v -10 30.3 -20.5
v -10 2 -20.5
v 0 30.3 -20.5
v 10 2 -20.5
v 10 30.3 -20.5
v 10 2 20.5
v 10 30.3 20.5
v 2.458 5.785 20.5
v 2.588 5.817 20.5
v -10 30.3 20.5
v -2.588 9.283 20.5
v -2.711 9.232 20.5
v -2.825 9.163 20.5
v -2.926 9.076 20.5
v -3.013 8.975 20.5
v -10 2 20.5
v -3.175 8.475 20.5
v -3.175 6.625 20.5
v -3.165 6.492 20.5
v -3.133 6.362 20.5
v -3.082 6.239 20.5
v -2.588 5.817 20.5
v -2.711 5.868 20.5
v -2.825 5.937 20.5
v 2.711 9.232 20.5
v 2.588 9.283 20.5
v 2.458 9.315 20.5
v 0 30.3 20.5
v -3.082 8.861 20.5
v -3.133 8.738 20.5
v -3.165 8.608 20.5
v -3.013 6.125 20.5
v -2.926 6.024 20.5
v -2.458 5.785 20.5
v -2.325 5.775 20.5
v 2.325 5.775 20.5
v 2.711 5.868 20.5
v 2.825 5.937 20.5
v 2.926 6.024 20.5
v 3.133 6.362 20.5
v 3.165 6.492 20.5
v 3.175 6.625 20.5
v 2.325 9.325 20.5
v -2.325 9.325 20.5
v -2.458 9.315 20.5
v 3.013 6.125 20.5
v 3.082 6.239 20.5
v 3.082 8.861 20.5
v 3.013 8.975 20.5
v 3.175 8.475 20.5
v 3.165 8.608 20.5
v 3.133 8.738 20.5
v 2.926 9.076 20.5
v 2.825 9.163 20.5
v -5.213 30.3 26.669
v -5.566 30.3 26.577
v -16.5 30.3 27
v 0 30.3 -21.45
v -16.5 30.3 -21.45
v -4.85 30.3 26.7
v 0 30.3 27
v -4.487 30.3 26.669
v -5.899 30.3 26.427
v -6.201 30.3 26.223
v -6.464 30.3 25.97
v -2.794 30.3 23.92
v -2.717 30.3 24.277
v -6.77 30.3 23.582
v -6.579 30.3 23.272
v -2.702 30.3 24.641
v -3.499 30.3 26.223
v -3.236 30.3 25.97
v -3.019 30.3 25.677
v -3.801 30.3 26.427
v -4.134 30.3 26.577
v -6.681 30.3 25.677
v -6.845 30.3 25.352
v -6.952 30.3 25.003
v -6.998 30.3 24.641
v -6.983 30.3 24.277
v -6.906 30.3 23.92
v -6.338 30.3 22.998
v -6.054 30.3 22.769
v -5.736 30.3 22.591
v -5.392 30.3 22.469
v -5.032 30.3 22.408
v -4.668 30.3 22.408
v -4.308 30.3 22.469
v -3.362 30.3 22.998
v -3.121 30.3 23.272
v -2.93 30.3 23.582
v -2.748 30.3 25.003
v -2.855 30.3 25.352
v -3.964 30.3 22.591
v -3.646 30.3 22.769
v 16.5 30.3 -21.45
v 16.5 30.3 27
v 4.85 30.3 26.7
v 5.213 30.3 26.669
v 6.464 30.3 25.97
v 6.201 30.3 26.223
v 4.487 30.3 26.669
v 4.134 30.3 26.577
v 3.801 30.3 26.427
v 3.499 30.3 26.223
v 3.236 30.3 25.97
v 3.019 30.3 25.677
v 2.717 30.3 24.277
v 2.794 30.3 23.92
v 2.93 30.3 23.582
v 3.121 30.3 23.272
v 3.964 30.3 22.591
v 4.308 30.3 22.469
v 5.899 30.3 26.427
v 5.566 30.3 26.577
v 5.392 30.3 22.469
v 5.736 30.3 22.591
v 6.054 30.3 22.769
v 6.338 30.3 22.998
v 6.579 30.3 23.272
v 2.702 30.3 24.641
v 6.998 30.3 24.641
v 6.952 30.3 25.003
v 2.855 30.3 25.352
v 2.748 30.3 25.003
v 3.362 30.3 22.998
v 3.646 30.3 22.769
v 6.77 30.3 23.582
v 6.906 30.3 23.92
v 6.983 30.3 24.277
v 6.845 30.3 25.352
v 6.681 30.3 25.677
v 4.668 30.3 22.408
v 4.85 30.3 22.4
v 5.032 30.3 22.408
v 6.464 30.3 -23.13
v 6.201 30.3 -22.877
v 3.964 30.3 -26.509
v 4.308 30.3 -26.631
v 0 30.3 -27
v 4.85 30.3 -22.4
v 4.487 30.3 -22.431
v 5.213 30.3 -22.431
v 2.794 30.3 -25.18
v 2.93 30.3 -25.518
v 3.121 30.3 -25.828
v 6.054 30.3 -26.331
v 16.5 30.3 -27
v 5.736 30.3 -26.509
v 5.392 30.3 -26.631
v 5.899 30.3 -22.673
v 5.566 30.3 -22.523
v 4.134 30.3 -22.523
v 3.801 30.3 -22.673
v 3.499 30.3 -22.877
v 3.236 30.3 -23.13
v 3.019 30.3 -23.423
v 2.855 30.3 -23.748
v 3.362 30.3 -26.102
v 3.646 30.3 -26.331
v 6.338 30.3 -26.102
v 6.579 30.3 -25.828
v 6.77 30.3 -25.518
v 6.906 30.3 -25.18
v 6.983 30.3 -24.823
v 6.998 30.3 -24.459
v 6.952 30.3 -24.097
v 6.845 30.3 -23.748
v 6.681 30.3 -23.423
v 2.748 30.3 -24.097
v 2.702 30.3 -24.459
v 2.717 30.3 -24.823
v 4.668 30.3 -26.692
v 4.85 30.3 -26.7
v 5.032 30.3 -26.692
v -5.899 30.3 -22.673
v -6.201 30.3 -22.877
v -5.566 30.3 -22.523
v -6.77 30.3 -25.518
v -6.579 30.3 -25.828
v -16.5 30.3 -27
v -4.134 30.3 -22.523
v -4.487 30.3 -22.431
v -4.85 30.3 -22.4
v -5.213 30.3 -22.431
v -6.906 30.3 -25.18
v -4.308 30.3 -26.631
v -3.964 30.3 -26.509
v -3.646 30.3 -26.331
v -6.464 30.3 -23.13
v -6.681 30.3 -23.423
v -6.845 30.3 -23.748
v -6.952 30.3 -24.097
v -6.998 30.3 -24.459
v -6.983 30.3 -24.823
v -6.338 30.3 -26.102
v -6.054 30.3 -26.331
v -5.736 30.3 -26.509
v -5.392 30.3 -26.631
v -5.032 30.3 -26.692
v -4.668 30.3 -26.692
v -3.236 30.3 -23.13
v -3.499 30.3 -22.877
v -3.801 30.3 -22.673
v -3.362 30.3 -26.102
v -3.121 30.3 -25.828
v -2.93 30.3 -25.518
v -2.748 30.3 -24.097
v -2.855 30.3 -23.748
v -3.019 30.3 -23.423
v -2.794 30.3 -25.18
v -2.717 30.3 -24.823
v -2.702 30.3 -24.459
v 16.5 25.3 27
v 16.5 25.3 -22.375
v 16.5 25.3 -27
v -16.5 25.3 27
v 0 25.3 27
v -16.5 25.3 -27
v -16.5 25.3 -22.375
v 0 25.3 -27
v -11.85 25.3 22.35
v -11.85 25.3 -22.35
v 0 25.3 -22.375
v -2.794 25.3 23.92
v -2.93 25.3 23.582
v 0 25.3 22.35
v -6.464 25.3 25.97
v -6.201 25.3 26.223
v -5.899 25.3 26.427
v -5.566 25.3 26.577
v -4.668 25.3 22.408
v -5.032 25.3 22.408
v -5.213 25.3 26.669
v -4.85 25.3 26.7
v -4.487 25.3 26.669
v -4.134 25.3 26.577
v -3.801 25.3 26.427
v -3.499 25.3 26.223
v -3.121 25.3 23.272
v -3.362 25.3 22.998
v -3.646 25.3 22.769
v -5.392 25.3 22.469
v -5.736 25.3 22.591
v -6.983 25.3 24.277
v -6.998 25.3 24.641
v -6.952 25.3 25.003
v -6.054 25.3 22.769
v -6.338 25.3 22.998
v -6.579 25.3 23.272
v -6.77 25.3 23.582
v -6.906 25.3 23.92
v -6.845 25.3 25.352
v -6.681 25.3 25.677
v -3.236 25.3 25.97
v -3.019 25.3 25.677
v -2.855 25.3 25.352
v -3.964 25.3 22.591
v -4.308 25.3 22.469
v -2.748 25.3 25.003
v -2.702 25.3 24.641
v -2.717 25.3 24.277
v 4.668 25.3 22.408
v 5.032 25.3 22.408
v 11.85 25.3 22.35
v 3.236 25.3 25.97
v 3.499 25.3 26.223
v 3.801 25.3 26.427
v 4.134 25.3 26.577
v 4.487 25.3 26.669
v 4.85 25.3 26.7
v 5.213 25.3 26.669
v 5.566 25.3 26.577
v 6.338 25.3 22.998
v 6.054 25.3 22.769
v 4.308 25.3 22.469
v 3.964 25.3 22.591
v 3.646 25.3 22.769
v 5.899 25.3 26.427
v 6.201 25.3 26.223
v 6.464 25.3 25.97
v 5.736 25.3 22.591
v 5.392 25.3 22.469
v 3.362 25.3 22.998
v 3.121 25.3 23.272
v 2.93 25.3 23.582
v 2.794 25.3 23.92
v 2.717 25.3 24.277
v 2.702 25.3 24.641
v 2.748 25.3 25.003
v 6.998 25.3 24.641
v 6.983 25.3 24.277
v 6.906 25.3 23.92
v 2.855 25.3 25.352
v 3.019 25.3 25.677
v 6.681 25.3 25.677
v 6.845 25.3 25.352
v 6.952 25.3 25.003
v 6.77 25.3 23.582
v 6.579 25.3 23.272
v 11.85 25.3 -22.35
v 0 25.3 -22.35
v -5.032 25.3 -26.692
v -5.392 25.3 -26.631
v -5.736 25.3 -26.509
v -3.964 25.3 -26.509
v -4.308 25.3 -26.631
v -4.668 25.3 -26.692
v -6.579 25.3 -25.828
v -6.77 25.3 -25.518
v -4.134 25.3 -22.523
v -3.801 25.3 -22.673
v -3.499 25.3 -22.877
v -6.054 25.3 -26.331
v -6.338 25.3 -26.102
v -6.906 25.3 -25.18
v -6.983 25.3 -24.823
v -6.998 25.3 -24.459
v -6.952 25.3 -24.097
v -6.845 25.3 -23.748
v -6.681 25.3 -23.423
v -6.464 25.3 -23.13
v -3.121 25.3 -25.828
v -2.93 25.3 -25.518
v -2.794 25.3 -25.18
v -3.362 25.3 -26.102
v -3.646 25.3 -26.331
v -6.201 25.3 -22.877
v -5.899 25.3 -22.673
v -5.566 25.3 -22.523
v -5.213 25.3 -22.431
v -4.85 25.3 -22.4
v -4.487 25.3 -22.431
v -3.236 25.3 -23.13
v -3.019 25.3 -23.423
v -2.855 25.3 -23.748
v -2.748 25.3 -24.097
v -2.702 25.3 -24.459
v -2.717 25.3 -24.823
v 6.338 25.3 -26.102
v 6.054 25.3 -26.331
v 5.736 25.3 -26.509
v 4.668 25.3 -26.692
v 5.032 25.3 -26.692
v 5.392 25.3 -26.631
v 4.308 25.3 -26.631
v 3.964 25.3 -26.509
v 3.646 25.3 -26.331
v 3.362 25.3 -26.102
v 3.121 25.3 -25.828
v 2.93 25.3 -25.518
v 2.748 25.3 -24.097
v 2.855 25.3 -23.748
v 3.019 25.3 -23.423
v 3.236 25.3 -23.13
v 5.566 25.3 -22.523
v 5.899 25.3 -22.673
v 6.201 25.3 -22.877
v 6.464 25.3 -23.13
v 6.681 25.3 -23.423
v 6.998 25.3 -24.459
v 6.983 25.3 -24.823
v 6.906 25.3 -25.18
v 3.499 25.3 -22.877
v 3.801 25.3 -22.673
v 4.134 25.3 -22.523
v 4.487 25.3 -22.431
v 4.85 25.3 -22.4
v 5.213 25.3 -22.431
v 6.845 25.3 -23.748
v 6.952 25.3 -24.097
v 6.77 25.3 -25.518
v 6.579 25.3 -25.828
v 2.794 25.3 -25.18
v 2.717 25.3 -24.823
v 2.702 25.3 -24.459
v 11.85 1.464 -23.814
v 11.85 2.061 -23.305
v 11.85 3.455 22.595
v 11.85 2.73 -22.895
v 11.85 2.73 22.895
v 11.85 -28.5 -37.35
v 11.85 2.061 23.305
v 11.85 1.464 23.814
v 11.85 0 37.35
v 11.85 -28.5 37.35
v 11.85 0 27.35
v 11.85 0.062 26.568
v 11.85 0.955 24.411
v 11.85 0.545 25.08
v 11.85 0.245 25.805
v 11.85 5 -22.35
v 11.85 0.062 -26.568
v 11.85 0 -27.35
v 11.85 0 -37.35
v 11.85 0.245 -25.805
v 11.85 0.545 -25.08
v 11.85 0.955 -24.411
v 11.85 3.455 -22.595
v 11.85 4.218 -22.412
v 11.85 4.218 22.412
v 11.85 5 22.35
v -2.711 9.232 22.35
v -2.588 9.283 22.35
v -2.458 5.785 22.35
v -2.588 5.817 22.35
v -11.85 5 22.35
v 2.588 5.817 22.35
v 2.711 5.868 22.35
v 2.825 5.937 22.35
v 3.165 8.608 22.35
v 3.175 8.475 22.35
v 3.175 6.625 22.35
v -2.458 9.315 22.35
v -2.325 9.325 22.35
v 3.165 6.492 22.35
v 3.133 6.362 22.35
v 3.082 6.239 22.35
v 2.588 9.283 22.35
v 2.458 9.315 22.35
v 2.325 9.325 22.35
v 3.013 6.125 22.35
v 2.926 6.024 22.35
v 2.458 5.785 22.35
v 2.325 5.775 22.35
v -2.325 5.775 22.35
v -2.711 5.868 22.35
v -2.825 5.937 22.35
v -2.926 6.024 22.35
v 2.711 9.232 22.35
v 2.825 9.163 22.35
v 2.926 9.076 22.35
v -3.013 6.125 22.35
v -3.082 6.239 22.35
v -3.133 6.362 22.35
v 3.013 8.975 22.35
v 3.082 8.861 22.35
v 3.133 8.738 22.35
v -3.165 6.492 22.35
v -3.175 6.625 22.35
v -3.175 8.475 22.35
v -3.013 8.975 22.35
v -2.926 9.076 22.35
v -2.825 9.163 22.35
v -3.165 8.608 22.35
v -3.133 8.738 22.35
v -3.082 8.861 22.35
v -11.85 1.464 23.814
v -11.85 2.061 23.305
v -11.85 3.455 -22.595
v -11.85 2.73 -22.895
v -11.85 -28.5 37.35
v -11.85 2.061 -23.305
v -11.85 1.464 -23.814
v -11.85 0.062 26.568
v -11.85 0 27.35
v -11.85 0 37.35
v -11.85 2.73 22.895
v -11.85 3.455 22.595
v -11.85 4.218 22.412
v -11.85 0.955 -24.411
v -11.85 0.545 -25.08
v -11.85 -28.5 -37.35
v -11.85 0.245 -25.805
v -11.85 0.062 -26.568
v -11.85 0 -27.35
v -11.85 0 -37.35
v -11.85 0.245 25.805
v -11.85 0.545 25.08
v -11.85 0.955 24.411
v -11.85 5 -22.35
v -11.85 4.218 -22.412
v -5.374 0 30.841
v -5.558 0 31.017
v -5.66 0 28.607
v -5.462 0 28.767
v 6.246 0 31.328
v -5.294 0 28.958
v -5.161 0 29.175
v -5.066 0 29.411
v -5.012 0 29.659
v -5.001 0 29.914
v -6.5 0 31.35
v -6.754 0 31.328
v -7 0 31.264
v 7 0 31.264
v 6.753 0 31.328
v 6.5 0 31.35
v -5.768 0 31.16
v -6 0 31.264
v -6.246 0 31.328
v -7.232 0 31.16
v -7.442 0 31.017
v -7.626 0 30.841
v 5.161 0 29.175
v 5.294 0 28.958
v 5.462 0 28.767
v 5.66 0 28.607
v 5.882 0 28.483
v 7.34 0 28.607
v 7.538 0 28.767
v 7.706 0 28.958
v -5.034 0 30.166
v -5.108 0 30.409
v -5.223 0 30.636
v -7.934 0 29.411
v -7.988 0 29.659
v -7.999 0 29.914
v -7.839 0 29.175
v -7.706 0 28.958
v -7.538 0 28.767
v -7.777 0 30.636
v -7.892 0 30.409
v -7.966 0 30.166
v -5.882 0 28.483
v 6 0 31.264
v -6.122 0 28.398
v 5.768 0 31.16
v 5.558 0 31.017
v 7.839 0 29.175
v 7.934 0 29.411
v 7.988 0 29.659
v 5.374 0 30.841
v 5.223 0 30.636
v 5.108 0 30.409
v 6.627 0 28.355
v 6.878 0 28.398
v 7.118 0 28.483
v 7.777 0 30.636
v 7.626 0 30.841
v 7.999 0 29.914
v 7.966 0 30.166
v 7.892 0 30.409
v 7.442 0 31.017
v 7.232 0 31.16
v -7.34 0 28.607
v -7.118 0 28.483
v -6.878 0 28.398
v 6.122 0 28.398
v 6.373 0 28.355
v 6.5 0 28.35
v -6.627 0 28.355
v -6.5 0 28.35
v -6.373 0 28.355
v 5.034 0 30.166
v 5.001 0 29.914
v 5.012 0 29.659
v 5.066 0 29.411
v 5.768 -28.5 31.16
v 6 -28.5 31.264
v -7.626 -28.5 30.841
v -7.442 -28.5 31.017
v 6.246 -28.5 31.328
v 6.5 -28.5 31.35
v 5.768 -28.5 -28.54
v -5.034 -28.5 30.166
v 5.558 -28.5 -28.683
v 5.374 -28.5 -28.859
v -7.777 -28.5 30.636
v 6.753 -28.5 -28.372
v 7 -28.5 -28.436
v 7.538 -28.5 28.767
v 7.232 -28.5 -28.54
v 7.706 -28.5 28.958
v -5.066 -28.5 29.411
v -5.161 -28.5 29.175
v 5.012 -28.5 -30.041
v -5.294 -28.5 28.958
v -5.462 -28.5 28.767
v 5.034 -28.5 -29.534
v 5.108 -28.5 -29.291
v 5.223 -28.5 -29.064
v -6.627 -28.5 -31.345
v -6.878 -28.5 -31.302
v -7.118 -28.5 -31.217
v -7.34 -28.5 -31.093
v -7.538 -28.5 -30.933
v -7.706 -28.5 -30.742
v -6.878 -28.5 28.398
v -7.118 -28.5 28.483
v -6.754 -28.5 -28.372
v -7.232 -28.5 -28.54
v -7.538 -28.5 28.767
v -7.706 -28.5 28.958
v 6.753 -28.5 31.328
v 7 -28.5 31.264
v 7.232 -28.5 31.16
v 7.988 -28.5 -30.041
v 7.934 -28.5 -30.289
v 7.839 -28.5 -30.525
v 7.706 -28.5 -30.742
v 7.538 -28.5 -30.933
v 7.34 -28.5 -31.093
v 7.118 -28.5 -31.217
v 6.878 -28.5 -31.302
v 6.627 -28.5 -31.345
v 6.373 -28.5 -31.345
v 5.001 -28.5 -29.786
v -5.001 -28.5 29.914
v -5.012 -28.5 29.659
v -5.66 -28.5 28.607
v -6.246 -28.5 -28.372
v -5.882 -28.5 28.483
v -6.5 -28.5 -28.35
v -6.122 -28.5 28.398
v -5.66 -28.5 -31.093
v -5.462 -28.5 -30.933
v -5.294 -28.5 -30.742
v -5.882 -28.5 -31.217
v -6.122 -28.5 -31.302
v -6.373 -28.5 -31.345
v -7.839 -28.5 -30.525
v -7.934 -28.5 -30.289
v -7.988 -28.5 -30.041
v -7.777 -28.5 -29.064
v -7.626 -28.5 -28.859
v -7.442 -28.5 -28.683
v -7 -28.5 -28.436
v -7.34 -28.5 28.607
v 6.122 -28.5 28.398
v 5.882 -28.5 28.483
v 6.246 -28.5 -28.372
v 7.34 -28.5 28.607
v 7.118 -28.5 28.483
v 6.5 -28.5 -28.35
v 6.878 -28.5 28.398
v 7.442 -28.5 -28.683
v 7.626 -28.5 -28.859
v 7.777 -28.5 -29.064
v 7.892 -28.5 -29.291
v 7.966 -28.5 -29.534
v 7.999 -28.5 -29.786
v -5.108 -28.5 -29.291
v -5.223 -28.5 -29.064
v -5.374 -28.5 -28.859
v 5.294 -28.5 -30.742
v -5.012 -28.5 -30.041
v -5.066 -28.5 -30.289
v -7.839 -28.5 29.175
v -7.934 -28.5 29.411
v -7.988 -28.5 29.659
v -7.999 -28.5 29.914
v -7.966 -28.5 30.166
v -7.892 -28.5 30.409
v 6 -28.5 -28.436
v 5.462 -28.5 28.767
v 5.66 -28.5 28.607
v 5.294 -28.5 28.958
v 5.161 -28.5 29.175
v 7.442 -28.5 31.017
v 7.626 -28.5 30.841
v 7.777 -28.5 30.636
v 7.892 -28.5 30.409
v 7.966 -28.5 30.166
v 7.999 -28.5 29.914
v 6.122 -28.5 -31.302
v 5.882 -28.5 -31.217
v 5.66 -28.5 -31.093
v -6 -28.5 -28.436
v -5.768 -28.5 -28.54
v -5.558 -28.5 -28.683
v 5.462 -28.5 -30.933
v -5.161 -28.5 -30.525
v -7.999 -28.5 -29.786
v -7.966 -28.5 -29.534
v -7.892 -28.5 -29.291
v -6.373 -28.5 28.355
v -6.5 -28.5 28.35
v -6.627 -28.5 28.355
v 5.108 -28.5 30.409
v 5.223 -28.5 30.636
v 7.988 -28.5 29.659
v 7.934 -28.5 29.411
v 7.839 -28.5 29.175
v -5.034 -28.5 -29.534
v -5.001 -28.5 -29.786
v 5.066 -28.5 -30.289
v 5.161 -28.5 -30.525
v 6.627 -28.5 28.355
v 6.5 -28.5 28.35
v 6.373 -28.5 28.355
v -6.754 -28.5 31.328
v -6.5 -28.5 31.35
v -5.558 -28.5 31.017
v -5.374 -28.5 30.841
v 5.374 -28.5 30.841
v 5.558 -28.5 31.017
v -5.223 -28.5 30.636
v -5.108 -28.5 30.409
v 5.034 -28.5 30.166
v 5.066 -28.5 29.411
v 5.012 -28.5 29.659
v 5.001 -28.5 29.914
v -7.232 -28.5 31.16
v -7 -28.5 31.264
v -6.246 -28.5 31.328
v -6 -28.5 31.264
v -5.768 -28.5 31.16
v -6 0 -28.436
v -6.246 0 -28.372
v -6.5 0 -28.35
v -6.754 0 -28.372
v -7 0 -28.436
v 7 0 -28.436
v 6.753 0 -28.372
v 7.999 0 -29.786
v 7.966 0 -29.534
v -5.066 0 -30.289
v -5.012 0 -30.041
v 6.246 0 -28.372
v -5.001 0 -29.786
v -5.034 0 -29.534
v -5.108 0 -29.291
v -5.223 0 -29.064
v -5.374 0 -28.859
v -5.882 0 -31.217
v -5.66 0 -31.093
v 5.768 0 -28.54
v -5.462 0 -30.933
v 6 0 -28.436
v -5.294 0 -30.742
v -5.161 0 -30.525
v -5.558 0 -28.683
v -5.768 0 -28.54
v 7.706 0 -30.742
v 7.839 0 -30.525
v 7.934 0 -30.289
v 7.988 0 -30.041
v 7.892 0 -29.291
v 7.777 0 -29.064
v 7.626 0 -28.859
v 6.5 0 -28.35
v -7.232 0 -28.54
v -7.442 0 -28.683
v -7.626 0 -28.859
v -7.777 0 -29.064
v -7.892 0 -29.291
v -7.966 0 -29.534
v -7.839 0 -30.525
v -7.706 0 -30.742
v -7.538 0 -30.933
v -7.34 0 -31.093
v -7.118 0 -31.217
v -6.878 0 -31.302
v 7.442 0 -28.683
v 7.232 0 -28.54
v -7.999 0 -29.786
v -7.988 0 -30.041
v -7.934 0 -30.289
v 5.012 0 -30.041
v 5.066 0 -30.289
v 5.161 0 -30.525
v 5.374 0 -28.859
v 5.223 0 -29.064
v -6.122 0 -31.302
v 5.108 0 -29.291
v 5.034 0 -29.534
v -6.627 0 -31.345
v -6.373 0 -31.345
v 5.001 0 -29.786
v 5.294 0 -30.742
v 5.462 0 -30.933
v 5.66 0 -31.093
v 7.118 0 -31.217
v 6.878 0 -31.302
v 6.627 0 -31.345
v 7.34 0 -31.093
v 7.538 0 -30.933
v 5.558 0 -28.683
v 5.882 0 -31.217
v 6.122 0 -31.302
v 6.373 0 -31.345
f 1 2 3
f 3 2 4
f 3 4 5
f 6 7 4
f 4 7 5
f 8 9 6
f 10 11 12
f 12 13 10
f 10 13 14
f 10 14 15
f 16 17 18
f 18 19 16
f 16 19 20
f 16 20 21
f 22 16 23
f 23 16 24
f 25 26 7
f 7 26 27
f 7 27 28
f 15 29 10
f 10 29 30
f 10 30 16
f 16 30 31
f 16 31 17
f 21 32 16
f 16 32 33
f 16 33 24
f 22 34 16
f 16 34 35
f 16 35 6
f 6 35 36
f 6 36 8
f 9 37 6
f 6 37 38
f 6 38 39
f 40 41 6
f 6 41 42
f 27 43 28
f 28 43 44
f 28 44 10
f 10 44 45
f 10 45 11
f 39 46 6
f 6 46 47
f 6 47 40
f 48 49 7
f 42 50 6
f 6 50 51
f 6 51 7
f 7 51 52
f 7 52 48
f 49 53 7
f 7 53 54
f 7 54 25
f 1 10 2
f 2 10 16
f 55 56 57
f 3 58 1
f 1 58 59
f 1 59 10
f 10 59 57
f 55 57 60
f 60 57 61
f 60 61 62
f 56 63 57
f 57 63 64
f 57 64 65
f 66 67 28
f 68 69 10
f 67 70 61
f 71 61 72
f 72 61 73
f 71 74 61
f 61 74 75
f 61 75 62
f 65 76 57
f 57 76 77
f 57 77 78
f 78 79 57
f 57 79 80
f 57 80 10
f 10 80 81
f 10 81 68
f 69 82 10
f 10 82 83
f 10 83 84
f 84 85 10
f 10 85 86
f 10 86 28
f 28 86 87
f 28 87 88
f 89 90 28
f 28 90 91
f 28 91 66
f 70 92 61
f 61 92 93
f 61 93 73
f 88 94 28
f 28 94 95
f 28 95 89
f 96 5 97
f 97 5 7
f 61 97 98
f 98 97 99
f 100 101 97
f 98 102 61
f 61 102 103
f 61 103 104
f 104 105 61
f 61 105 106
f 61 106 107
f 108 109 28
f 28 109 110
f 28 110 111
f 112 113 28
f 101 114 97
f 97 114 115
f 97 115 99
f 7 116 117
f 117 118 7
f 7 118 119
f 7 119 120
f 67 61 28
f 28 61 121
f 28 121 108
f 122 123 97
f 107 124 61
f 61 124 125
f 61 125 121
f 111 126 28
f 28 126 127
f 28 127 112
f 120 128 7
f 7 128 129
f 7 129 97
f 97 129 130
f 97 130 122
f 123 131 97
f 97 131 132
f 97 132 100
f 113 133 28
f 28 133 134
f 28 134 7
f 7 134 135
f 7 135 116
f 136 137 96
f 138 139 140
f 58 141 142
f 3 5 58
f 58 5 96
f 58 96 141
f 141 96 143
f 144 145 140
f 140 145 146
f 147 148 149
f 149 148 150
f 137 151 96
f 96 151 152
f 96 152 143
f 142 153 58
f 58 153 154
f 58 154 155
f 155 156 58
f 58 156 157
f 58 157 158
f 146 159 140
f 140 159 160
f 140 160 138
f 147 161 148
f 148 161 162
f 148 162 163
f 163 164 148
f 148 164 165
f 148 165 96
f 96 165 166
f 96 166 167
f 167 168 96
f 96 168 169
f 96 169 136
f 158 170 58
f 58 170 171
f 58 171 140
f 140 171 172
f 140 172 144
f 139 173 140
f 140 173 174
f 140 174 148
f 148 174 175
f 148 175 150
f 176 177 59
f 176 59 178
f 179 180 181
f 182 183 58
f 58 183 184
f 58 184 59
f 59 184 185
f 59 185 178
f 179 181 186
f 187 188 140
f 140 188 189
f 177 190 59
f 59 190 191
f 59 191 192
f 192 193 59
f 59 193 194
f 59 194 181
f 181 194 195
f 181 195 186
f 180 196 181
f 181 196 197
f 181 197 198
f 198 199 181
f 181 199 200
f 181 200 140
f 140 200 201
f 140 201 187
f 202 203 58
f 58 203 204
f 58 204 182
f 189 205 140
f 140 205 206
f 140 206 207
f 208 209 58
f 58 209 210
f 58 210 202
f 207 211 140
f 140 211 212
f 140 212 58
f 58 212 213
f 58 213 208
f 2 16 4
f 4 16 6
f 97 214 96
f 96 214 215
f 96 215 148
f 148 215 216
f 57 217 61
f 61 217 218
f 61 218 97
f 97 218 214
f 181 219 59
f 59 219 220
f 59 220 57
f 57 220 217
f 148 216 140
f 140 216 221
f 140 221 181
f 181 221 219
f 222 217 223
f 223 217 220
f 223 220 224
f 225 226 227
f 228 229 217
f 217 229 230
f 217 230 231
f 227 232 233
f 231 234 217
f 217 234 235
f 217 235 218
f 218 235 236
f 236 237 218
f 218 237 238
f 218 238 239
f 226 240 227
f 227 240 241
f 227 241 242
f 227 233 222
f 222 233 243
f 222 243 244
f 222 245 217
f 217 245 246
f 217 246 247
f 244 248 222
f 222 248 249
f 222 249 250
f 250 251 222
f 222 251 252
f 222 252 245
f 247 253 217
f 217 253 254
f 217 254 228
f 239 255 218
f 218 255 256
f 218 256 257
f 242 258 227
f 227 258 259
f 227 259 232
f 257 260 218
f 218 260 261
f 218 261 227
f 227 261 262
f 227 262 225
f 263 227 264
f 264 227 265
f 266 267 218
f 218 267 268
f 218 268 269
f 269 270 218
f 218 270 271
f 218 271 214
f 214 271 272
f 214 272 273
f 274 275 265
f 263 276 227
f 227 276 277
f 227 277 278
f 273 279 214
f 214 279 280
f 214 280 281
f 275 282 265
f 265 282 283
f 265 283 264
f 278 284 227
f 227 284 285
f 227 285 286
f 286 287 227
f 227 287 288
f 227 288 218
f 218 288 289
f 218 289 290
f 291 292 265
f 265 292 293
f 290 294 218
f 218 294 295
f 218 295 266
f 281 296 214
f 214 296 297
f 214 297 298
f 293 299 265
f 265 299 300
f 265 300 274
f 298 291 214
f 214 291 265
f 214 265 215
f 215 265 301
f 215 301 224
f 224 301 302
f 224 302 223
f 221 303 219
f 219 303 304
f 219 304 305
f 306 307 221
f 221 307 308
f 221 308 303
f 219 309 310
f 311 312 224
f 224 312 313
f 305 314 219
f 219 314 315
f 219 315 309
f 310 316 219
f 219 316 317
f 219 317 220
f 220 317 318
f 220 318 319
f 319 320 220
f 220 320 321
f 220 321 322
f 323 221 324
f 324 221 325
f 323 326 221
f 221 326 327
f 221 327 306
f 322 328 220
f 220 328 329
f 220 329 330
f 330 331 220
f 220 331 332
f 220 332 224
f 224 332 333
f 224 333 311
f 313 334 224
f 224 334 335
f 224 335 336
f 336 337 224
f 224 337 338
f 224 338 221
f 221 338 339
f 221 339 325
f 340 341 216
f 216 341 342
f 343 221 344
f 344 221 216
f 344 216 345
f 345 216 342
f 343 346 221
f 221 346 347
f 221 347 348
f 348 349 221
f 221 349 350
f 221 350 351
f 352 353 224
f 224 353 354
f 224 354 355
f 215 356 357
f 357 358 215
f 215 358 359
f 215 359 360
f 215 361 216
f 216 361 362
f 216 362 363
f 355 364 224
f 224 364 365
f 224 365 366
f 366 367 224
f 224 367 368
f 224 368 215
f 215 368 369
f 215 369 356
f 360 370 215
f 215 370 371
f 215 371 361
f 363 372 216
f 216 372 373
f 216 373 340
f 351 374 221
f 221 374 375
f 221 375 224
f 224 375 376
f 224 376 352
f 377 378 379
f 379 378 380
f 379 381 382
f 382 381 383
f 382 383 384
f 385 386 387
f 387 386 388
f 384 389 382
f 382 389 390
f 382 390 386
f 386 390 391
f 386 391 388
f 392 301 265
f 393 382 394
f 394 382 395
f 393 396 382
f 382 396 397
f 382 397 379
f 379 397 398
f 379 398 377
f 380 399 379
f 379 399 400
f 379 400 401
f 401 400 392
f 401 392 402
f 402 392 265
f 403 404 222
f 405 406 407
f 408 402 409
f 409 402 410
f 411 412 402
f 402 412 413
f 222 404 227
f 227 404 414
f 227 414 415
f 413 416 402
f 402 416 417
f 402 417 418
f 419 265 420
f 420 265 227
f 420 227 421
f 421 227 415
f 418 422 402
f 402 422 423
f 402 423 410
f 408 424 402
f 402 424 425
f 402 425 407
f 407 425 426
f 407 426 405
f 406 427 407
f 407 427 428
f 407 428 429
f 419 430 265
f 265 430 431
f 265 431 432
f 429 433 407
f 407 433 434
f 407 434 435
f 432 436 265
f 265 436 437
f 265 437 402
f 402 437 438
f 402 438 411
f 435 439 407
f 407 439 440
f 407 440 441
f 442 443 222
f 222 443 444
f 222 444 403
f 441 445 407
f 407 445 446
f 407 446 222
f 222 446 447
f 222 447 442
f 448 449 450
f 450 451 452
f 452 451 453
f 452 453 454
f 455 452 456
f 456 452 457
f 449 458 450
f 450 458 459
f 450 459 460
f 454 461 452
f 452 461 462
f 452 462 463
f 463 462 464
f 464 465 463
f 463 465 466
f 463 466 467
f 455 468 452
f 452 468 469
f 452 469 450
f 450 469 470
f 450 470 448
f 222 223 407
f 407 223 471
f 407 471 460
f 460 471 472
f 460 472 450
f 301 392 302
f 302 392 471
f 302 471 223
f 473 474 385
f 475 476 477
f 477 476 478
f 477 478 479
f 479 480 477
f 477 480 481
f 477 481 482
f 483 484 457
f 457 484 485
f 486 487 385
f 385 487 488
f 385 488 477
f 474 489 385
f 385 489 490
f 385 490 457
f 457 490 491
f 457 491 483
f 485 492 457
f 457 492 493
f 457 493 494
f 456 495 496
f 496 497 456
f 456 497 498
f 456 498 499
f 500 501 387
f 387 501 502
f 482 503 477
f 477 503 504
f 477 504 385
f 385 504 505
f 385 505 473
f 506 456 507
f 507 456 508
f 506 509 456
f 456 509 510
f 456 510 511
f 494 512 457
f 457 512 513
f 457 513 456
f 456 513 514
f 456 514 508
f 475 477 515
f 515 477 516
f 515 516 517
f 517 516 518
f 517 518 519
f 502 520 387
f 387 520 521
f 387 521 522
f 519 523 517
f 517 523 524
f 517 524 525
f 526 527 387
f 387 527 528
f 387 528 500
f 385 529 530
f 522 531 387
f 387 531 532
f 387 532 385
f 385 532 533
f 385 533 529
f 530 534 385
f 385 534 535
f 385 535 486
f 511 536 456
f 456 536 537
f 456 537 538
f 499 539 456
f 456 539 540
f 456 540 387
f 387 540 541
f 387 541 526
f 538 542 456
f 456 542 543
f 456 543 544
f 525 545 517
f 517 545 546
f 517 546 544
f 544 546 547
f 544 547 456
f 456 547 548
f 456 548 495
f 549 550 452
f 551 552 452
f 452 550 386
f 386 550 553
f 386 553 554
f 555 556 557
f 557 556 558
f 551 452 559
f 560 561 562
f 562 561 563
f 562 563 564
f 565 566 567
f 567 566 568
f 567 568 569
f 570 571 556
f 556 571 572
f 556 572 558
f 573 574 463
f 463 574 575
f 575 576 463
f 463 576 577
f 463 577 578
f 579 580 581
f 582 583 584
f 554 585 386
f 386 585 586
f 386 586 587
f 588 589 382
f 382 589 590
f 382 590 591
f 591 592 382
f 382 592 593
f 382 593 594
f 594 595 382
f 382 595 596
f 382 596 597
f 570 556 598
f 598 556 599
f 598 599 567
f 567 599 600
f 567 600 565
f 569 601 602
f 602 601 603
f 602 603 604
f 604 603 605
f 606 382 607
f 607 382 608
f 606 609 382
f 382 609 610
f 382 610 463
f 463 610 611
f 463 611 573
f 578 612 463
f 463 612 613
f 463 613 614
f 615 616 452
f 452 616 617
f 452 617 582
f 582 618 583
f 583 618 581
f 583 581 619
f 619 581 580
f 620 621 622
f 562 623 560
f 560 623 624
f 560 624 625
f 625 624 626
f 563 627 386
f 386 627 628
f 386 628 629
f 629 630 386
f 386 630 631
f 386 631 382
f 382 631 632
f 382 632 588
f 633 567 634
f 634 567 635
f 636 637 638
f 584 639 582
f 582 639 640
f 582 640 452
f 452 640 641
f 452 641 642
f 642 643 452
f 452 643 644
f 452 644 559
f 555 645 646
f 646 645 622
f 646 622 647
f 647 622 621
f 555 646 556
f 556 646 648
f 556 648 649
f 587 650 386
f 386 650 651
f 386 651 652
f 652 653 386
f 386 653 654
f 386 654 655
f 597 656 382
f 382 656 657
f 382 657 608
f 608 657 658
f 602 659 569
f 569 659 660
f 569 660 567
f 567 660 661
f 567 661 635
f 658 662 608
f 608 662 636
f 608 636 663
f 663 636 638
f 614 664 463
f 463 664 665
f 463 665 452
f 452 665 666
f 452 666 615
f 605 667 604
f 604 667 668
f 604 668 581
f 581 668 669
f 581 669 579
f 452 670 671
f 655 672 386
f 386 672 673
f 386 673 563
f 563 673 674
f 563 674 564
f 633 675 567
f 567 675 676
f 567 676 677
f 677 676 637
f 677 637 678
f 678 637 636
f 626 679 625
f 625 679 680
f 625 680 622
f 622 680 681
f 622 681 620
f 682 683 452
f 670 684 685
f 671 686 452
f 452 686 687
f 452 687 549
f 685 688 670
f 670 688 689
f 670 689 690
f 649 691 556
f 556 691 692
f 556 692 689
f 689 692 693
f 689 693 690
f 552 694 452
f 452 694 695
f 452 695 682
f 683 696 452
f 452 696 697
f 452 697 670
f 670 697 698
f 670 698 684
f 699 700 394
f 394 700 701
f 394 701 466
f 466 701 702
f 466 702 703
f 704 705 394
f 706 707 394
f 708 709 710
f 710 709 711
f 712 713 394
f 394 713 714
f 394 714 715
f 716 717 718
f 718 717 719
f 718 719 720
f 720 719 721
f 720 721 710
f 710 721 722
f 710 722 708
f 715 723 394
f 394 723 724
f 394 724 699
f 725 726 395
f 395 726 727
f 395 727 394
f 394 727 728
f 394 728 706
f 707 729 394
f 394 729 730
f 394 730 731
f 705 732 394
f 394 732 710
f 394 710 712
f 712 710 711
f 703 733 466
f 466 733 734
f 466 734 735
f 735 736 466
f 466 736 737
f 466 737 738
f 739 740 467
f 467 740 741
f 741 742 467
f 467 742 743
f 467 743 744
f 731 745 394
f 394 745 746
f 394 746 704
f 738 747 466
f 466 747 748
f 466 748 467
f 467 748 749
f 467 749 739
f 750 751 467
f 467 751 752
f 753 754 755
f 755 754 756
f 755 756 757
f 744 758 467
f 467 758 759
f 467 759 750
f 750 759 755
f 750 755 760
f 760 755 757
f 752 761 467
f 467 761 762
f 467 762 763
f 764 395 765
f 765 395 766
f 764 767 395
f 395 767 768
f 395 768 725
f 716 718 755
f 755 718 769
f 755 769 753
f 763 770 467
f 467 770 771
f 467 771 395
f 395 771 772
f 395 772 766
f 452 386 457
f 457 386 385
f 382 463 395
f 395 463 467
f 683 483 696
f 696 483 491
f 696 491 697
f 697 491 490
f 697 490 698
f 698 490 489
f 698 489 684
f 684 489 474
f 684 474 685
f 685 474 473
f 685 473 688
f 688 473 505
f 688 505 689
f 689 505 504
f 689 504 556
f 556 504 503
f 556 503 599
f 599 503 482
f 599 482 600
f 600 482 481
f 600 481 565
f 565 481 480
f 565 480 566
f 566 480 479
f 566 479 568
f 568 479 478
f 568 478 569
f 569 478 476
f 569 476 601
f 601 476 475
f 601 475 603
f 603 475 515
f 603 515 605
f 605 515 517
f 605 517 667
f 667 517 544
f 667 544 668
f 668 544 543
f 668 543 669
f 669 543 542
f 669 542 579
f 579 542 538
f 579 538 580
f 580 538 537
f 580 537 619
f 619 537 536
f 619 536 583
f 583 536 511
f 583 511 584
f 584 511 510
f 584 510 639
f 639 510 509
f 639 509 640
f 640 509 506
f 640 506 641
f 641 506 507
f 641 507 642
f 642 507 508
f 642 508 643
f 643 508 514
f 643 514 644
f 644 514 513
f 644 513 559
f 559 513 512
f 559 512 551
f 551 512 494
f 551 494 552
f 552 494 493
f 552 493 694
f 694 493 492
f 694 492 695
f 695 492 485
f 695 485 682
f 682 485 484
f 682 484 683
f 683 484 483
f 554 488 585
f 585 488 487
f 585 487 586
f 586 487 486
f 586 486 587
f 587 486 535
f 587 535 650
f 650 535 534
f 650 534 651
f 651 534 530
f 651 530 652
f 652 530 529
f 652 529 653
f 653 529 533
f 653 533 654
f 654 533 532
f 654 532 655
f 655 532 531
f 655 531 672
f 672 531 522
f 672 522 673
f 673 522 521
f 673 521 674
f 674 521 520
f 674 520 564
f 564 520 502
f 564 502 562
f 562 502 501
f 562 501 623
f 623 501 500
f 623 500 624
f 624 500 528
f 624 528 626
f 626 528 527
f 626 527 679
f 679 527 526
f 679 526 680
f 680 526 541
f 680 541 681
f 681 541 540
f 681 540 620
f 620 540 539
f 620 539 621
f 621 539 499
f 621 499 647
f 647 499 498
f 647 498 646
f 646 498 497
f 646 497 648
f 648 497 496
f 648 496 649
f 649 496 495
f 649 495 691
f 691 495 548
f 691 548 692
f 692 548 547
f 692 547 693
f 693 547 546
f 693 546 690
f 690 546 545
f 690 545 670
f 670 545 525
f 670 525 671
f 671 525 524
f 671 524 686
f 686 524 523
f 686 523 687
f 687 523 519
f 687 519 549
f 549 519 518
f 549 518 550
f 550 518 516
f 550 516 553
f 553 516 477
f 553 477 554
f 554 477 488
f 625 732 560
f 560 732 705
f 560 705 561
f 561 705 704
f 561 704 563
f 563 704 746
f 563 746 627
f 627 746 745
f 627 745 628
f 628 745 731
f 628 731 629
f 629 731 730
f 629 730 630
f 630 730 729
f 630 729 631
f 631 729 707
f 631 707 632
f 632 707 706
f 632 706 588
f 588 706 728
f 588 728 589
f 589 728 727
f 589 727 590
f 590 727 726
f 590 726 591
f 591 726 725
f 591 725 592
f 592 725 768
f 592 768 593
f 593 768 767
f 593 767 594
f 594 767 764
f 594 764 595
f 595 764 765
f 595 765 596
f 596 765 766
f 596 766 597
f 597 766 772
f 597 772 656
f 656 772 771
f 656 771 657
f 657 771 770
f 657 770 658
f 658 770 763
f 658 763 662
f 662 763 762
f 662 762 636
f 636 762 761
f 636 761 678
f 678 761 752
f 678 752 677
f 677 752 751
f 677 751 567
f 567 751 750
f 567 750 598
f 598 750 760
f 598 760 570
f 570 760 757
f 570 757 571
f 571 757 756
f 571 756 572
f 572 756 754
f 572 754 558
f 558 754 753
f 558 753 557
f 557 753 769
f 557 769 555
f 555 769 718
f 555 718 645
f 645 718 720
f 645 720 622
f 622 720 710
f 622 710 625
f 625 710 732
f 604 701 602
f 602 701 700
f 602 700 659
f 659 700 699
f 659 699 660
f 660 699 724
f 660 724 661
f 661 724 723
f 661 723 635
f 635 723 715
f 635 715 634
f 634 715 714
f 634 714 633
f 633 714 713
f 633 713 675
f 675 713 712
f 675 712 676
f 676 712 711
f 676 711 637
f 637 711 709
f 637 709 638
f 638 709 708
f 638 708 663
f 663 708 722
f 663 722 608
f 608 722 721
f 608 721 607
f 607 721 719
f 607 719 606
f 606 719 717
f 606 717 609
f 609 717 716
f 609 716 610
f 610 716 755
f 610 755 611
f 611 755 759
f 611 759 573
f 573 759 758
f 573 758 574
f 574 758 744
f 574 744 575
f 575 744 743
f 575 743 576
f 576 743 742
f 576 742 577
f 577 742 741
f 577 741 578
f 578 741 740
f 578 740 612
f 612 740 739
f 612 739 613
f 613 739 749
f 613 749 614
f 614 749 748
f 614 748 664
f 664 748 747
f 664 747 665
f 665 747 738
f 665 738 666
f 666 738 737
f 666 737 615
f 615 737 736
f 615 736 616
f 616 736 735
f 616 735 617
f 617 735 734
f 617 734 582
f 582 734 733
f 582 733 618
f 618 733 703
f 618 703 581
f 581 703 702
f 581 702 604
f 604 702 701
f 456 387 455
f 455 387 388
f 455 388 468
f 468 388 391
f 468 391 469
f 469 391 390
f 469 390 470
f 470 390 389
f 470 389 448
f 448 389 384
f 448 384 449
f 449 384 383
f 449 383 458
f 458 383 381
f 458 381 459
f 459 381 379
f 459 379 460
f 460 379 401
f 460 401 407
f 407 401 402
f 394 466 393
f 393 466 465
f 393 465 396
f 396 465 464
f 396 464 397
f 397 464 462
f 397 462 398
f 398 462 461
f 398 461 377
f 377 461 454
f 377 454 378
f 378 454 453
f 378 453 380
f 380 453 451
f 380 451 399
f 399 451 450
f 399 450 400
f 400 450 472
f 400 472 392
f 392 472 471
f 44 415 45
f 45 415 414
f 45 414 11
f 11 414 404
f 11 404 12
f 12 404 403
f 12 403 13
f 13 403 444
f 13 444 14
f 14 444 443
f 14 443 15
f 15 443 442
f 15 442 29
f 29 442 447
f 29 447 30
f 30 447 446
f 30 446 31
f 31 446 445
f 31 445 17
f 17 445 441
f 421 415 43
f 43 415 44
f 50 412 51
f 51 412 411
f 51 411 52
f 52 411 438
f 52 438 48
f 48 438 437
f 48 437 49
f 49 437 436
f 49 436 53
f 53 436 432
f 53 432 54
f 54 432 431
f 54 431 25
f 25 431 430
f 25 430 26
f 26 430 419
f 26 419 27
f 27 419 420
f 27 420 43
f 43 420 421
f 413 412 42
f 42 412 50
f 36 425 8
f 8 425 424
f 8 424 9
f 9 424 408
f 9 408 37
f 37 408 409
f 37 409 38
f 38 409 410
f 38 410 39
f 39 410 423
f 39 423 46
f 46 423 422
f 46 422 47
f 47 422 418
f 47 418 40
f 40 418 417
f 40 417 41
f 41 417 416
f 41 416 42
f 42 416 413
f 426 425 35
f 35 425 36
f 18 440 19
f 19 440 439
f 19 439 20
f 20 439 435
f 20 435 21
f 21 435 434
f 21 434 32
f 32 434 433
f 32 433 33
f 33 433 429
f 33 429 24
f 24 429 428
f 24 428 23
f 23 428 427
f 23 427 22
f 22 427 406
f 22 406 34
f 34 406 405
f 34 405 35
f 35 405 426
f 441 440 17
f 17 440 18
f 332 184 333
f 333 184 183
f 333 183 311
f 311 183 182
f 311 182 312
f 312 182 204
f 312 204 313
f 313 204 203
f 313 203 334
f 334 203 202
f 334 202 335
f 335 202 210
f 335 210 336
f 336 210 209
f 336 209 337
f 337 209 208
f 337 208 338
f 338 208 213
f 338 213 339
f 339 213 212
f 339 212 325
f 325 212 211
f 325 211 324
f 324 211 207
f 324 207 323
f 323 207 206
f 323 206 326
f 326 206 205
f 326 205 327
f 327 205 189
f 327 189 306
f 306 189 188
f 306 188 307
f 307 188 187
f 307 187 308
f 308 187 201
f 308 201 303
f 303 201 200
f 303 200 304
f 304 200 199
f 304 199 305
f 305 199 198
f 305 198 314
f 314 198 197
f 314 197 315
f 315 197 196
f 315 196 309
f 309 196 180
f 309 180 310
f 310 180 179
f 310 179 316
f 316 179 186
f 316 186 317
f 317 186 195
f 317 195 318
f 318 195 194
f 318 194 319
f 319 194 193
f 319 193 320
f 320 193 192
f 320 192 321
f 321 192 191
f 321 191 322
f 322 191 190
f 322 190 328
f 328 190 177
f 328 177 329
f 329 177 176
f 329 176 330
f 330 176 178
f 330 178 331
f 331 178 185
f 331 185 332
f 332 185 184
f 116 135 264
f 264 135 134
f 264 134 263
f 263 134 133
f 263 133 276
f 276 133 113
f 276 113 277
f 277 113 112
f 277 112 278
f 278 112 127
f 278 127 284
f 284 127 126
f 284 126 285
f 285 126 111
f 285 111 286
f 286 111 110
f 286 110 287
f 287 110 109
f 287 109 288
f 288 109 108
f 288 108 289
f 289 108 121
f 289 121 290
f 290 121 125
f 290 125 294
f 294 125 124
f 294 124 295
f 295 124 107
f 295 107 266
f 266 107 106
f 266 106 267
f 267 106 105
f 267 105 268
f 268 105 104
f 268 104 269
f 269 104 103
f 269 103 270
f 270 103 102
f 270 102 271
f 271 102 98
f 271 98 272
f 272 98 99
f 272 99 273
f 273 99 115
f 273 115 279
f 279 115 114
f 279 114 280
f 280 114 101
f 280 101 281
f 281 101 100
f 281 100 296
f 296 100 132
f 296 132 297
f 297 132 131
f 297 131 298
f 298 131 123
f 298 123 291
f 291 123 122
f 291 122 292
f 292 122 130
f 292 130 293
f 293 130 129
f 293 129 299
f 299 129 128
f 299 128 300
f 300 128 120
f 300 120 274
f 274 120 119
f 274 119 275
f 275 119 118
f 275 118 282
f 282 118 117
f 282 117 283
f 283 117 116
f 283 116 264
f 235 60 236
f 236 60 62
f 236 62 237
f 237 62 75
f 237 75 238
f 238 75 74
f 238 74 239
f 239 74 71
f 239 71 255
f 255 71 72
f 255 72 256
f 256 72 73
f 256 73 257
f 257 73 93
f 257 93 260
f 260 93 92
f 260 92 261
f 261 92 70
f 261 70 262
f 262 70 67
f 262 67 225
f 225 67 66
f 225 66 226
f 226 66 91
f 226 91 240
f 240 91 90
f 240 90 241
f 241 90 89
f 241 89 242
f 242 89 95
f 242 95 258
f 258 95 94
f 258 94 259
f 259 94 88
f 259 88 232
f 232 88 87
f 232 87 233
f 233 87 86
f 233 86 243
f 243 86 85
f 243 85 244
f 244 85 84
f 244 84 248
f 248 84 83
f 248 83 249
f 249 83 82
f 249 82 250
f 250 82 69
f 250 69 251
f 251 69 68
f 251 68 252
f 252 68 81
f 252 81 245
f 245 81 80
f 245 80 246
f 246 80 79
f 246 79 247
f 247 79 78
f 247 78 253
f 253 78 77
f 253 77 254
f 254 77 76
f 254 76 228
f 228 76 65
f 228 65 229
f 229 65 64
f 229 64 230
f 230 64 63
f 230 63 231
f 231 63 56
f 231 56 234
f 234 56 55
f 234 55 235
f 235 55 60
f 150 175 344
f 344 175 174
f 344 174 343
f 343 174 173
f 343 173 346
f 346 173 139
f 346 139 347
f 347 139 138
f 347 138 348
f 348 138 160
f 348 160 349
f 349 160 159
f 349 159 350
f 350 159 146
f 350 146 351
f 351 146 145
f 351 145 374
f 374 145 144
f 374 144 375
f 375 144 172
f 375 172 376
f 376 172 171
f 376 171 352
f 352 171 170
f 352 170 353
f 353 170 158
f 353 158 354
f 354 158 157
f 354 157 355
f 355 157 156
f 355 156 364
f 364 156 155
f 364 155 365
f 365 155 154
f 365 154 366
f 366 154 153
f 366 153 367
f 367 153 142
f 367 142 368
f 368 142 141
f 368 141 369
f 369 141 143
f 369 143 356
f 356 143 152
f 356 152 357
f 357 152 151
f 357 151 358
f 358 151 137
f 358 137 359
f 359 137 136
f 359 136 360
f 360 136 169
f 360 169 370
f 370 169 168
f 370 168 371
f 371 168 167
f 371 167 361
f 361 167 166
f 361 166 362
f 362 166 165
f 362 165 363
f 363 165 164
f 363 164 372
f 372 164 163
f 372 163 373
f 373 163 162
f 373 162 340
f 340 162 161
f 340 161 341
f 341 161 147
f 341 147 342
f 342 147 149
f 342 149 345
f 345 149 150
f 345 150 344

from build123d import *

# Parameters (mm, degrees)
CROQUIS1_W              = 23.7
CROQUIS1_H              = 44.7
CROQUIS1_W_2            = 20
CROQUIS1_H_2            = 41
SALIENTE_EXTRUIR1_DEPTH = 30.3
CROQUIS1_2_W            = 20
CROQUIS1_2_H            = 41
SALIENTE_EXTRUIR2_DEPTH = 2
SALIENTE_EXTRUIR3_START = 30.3
CROQUIS1_4_W            = 33
CROQUIS1_4_H            = 54
CROQUIS1_4_W_2          = 23.7
CROQUIS1_4_H_2          = 44.7
SALIENTE_EXTRUIR3_DEPTH = 5
CROQUIS2_W              = 23.7
CROQUIS2_H              = 74.7
CROQUIS2_R              = 1.5
SALIENTE_EXTRUIR5_DEPTH = 28.5
REDONDEO2_R             = 5
CORTAR_EXTRUIR1_DEPTH   = 5
CROQUIS4_R              = 2.15
CORTAR_EXTRUIR2_DEPTH   = 10


with BuildPart() as part:
    # Croquis1 → Saliente-Extruir1 (new body)
    with BuildSketch(Plane(origin=(0, 0, 0), x_dir=(1, 0, 0), z_dir=(0, 1, 0))):
        Rectangle(CROQUIS1_W, CROQUIS1_H)
        Rectangle(CROQUIS1_W_2, CROQUIS1_H_2, mode=Mode.SUBTRACT)
    extrude(amount=SALIENTE_EXTRUIR1_DEPTH)

    # Croquis1<2> → Saliente-Extruir2 (add)
    with BuildSketch(Plane(origin=(0, 0, 0), x_dir=(1, 0, 0), z_dir=(0, 1, 0))):
        Rectangle(CROQUIS1_2_W, CROQUIS1_2_H)
    extrude(amount=SALIENTE_EXTRUIR2_DEPTH)

    # Croquis1<4> → Saliente-Extruir3 (add)
    with BuildSketch(Plane(origin=(0, 0, 0), x_dir=(1, 0, 0), z_dir=(0, 1, 0)).offset(SALIENTE_EXTRUIR3_START)):
        Rectangle(CROQUIS1_4_W, CROQUIS1_4_H)
        Rectangle(CROQUIS1_4_W_2, CROQUIS1_4_H_2, mode=Mode.SUBTRACT)
    extrude(amount=-SALIENTE_EXTRUIR3_DEPTH)

    # Croquis2 → Saliente-Extruir5 (add)
    with BuildSketch(Plane.XZ):
        Rectangle(CROQUIS2_W, CROQUIS2_H)
        with Locations((-6.5, 29.85)):
            Circle(CROQUIS2_R, mode=Mode.SUBTRACT)
        with Locations((6.5, 29.85)):
            Circle(CROQUIS2_R, mode=Mode.SUBTRACT)
        with Locations((6.5, -29.85)):
            Circle(CROQUIS2_R, mode=Mode.SUBTRACT)
        with Locations((-6.5, -29.85)):
            Circle(CROQUIS2_R, mode=Mode.SUBTRACT)
    extrude(amount=SALIENTE_EXTRUIR5_DEPTH)

    # Redondeo2
    redondeo2_edges = [part.edges().sort_by_distance(p)[0] for p in [
        (0, 0, 22.35),
        (0, 0, -22.35),
    ]]
    fillet(redondeo2_edges, radius=REDONDEO2_R)

    # Croquis3 → Cortar-Extruir1 (cut, symmetric)
    with BuildSketch(Plane.XY.offset(22.35)):
        with BuildLine():
            Line((-2.325, 9.325), (2.325, 9.325))
            ThreePointArc((2.325, 9.325), (2.926040764, 9.076040764), (3.175, 8.475))
            Line((3.175, 8.475), (3.175, 6.625))
            ThreePointArc((3.175, 6.625), (2.926040764, 6.023959236), (2.325, 5.775))
            Line((2.325, 5.775), (-2.325, 5.775))
            ThreePointArc((-2.325, 5.775), (-2.926040764, 6.023959236), (-3.175, 6.625))
            Line((-3.175, 6.625), (-3.175, 8.475))
            ThreePointArc((-3.175, 8.475), (-2.926040764, 9.076040764), (-2.325, 9.325))
        make_face()
    extrude(amount=CORTAR_EXTRUIR1_DEPTH, both=True, mode=Mode.SUBTRACT)

    # Croquis4 → Cortar-Extruir2 (cut)
    with BuildSketch(Plane(origin=(0, 30.3, 0), x_dir=(1, 0, 0), z_dir=(0, 1, 0))):
        with Locations((-4.85, 24.55)):
            Circle(CROQUIS4_R)
        with Locations((4.85, 24.55)):
            Circle(CROQUIS4_R)
        with Locations((-4.85, -24.55)):
            Circle(CROQUIS4_R)
        with Locations((4.85, -24.55)):
            Circle(CROQUIS4_R)
    extrude(amount=-CORTAR_EXTRUIR2_DEPTH, mode=Mode.SUBTRACT)


solid = part.part
